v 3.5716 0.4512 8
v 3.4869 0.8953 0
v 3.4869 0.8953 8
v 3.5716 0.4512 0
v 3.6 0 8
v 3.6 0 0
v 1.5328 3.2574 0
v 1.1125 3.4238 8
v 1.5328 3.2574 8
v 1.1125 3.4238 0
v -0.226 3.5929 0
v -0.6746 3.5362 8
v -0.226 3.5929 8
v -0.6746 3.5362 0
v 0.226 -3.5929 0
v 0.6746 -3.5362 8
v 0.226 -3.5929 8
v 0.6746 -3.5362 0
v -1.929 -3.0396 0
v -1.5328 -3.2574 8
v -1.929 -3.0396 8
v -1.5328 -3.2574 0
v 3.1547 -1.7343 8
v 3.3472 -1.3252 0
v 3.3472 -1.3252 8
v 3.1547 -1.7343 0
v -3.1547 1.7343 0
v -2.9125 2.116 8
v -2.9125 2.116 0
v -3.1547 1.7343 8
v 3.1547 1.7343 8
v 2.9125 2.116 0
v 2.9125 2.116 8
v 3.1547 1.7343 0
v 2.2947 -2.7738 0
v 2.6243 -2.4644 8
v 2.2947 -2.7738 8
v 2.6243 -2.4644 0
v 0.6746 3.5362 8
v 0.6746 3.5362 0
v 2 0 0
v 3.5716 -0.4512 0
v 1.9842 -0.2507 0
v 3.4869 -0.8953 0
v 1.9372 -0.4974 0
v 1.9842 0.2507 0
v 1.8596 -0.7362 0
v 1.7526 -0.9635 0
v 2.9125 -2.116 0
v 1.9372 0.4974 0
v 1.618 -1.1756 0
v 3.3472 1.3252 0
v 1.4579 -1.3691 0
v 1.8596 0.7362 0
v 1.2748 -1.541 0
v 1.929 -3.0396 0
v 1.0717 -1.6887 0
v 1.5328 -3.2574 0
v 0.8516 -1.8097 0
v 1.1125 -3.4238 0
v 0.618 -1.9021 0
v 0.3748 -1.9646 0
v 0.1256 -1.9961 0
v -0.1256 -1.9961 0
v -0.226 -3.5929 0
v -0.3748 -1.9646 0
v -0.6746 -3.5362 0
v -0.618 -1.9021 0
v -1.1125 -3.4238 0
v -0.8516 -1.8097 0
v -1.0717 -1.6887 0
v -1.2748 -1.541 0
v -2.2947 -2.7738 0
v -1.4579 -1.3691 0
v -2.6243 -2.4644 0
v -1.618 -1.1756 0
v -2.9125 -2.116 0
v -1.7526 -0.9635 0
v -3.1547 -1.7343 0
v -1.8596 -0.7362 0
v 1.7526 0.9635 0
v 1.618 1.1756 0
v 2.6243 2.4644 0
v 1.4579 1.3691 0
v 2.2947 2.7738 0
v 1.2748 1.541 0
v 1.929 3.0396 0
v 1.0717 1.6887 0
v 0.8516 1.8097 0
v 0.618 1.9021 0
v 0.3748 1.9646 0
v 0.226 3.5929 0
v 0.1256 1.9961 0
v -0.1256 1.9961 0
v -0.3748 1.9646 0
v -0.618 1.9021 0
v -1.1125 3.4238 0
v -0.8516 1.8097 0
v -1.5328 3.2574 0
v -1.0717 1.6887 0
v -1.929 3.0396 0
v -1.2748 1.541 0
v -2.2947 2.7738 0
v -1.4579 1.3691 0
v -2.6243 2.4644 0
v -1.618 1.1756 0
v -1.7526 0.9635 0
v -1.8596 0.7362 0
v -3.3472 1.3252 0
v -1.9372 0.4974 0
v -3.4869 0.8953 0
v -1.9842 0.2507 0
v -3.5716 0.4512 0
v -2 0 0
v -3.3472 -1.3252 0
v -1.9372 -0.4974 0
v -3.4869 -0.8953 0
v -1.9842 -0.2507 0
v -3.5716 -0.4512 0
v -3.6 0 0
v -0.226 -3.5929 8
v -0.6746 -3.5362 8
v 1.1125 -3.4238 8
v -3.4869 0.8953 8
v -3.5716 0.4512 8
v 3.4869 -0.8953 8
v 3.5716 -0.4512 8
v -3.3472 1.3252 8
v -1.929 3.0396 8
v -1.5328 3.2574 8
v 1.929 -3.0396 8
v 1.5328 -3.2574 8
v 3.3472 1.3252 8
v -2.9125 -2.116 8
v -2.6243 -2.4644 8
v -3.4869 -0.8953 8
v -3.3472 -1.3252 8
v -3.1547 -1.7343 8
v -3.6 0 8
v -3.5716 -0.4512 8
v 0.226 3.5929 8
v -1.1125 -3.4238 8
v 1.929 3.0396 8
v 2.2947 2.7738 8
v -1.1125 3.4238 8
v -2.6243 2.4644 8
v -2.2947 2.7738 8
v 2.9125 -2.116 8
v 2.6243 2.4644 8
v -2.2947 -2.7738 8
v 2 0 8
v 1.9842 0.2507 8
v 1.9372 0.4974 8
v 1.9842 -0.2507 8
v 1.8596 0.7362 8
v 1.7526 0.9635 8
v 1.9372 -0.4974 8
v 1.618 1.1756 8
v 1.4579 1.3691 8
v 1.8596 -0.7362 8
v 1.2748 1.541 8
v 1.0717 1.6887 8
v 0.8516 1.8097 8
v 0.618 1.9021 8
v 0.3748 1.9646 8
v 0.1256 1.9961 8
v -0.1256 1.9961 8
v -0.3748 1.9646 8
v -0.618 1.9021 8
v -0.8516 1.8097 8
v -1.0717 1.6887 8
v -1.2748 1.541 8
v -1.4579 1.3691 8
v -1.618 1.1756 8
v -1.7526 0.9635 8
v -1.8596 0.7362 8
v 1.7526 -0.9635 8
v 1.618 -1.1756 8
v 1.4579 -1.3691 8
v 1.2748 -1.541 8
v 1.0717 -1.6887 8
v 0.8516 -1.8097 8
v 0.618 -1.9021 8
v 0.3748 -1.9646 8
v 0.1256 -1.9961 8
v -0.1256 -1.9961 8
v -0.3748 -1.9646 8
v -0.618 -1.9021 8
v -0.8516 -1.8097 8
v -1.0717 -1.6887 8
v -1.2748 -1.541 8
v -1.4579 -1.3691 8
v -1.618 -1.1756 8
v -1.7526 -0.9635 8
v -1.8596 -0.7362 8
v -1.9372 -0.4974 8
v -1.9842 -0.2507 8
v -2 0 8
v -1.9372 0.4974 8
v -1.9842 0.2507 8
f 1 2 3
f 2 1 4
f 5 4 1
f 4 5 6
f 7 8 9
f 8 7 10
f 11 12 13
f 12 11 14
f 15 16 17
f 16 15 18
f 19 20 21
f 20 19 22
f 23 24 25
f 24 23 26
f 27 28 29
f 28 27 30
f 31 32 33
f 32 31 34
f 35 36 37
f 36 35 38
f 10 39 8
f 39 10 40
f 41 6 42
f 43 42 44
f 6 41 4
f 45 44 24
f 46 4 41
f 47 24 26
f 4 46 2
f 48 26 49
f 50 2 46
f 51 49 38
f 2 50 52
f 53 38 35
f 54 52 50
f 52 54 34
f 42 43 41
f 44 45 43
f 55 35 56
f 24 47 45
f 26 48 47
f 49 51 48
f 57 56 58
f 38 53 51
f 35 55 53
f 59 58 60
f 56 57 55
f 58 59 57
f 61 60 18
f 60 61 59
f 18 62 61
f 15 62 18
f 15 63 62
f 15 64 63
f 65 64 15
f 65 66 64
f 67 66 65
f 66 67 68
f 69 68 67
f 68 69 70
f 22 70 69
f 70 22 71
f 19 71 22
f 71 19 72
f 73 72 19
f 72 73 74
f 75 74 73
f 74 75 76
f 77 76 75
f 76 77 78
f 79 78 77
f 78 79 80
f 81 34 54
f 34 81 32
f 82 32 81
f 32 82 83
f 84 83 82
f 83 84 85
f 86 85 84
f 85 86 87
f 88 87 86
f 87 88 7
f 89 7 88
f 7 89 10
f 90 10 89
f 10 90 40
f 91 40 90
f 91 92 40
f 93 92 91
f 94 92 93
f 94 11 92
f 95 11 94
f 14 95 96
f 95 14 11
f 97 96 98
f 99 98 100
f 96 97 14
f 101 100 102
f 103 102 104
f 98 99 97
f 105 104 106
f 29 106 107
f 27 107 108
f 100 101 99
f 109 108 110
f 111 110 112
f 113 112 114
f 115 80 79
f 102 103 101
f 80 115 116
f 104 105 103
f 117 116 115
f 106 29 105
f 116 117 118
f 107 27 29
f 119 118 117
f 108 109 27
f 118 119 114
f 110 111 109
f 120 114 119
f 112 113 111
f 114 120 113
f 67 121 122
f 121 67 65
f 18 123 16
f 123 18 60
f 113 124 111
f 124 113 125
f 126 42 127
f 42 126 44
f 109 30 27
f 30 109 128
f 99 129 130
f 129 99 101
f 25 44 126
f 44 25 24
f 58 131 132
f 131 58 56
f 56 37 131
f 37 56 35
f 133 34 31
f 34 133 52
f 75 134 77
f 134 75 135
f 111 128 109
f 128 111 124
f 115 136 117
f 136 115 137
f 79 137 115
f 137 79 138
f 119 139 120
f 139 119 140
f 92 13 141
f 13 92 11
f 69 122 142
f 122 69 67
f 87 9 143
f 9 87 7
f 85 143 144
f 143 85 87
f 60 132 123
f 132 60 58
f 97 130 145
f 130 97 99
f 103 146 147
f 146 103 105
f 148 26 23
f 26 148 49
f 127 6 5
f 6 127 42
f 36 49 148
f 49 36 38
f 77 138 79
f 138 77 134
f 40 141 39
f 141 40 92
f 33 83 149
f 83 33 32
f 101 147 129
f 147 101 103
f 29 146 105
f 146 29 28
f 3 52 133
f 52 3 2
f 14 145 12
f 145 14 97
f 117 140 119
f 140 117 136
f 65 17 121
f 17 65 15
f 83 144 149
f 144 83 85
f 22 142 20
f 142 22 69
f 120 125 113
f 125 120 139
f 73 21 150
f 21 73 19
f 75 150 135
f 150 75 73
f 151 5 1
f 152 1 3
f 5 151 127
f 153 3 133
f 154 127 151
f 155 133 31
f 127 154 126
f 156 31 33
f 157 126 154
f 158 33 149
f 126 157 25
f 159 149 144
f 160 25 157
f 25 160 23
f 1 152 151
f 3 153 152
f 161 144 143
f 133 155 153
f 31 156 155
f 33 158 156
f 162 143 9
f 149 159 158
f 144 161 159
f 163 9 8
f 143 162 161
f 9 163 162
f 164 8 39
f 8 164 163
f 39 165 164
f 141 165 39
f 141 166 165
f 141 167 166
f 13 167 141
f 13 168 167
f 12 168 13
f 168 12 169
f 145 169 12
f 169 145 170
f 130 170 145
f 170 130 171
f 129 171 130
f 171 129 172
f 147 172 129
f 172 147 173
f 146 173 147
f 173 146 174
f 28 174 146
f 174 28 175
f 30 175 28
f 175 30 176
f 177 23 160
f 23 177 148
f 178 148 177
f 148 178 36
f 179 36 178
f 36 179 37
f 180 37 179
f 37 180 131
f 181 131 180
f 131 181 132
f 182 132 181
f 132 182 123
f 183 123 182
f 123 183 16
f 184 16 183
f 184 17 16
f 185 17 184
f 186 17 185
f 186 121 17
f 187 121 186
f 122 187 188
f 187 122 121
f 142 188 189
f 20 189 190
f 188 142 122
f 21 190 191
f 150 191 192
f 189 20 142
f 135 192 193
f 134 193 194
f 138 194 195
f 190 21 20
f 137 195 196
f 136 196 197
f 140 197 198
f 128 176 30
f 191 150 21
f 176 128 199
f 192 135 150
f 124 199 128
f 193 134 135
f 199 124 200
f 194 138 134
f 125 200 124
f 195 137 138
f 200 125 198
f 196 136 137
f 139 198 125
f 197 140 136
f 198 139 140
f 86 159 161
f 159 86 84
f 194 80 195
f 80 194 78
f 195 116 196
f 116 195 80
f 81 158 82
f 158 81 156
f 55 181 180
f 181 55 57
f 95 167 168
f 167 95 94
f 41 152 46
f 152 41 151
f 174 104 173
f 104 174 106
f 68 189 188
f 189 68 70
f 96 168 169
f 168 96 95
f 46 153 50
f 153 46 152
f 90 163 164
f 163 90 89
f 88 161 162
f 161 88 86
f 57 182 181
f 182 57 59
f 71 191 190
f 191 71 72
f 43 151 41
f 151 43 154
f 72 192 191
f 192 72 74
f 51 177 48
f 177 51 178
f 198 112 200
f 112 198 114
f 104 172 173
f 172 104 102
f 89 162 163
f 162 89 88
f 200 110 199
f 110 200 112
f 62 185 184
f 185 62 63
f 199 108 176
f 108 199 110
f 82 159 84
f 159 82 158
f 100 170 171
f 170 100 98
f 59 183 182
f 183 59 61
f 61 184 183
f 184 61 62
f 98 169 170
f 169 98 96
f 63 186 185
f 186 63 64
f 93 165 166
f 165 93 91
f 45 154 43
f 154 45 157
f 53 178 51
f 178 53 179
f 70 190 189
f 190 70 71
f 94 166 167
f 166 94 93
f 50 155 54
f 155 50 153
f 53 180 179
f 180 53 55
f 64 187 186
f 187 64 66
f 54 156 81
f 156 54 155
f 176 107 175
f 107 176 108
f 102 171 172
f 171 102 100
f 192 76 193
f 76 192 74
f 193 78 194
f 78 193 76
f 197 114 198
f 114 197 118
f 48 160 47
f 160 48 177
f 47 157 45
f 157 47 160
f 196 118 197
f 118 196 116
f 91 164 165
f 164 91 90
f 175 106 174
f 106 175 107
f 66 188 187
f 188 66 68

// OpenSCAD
$fn = 50;

L = 8;
id = 4.0;
od = 2*((id/2) + (0.4*4));

difference() {
    cylinder(h=L, d=od);
    cylinder(h=L, d=id);
}
